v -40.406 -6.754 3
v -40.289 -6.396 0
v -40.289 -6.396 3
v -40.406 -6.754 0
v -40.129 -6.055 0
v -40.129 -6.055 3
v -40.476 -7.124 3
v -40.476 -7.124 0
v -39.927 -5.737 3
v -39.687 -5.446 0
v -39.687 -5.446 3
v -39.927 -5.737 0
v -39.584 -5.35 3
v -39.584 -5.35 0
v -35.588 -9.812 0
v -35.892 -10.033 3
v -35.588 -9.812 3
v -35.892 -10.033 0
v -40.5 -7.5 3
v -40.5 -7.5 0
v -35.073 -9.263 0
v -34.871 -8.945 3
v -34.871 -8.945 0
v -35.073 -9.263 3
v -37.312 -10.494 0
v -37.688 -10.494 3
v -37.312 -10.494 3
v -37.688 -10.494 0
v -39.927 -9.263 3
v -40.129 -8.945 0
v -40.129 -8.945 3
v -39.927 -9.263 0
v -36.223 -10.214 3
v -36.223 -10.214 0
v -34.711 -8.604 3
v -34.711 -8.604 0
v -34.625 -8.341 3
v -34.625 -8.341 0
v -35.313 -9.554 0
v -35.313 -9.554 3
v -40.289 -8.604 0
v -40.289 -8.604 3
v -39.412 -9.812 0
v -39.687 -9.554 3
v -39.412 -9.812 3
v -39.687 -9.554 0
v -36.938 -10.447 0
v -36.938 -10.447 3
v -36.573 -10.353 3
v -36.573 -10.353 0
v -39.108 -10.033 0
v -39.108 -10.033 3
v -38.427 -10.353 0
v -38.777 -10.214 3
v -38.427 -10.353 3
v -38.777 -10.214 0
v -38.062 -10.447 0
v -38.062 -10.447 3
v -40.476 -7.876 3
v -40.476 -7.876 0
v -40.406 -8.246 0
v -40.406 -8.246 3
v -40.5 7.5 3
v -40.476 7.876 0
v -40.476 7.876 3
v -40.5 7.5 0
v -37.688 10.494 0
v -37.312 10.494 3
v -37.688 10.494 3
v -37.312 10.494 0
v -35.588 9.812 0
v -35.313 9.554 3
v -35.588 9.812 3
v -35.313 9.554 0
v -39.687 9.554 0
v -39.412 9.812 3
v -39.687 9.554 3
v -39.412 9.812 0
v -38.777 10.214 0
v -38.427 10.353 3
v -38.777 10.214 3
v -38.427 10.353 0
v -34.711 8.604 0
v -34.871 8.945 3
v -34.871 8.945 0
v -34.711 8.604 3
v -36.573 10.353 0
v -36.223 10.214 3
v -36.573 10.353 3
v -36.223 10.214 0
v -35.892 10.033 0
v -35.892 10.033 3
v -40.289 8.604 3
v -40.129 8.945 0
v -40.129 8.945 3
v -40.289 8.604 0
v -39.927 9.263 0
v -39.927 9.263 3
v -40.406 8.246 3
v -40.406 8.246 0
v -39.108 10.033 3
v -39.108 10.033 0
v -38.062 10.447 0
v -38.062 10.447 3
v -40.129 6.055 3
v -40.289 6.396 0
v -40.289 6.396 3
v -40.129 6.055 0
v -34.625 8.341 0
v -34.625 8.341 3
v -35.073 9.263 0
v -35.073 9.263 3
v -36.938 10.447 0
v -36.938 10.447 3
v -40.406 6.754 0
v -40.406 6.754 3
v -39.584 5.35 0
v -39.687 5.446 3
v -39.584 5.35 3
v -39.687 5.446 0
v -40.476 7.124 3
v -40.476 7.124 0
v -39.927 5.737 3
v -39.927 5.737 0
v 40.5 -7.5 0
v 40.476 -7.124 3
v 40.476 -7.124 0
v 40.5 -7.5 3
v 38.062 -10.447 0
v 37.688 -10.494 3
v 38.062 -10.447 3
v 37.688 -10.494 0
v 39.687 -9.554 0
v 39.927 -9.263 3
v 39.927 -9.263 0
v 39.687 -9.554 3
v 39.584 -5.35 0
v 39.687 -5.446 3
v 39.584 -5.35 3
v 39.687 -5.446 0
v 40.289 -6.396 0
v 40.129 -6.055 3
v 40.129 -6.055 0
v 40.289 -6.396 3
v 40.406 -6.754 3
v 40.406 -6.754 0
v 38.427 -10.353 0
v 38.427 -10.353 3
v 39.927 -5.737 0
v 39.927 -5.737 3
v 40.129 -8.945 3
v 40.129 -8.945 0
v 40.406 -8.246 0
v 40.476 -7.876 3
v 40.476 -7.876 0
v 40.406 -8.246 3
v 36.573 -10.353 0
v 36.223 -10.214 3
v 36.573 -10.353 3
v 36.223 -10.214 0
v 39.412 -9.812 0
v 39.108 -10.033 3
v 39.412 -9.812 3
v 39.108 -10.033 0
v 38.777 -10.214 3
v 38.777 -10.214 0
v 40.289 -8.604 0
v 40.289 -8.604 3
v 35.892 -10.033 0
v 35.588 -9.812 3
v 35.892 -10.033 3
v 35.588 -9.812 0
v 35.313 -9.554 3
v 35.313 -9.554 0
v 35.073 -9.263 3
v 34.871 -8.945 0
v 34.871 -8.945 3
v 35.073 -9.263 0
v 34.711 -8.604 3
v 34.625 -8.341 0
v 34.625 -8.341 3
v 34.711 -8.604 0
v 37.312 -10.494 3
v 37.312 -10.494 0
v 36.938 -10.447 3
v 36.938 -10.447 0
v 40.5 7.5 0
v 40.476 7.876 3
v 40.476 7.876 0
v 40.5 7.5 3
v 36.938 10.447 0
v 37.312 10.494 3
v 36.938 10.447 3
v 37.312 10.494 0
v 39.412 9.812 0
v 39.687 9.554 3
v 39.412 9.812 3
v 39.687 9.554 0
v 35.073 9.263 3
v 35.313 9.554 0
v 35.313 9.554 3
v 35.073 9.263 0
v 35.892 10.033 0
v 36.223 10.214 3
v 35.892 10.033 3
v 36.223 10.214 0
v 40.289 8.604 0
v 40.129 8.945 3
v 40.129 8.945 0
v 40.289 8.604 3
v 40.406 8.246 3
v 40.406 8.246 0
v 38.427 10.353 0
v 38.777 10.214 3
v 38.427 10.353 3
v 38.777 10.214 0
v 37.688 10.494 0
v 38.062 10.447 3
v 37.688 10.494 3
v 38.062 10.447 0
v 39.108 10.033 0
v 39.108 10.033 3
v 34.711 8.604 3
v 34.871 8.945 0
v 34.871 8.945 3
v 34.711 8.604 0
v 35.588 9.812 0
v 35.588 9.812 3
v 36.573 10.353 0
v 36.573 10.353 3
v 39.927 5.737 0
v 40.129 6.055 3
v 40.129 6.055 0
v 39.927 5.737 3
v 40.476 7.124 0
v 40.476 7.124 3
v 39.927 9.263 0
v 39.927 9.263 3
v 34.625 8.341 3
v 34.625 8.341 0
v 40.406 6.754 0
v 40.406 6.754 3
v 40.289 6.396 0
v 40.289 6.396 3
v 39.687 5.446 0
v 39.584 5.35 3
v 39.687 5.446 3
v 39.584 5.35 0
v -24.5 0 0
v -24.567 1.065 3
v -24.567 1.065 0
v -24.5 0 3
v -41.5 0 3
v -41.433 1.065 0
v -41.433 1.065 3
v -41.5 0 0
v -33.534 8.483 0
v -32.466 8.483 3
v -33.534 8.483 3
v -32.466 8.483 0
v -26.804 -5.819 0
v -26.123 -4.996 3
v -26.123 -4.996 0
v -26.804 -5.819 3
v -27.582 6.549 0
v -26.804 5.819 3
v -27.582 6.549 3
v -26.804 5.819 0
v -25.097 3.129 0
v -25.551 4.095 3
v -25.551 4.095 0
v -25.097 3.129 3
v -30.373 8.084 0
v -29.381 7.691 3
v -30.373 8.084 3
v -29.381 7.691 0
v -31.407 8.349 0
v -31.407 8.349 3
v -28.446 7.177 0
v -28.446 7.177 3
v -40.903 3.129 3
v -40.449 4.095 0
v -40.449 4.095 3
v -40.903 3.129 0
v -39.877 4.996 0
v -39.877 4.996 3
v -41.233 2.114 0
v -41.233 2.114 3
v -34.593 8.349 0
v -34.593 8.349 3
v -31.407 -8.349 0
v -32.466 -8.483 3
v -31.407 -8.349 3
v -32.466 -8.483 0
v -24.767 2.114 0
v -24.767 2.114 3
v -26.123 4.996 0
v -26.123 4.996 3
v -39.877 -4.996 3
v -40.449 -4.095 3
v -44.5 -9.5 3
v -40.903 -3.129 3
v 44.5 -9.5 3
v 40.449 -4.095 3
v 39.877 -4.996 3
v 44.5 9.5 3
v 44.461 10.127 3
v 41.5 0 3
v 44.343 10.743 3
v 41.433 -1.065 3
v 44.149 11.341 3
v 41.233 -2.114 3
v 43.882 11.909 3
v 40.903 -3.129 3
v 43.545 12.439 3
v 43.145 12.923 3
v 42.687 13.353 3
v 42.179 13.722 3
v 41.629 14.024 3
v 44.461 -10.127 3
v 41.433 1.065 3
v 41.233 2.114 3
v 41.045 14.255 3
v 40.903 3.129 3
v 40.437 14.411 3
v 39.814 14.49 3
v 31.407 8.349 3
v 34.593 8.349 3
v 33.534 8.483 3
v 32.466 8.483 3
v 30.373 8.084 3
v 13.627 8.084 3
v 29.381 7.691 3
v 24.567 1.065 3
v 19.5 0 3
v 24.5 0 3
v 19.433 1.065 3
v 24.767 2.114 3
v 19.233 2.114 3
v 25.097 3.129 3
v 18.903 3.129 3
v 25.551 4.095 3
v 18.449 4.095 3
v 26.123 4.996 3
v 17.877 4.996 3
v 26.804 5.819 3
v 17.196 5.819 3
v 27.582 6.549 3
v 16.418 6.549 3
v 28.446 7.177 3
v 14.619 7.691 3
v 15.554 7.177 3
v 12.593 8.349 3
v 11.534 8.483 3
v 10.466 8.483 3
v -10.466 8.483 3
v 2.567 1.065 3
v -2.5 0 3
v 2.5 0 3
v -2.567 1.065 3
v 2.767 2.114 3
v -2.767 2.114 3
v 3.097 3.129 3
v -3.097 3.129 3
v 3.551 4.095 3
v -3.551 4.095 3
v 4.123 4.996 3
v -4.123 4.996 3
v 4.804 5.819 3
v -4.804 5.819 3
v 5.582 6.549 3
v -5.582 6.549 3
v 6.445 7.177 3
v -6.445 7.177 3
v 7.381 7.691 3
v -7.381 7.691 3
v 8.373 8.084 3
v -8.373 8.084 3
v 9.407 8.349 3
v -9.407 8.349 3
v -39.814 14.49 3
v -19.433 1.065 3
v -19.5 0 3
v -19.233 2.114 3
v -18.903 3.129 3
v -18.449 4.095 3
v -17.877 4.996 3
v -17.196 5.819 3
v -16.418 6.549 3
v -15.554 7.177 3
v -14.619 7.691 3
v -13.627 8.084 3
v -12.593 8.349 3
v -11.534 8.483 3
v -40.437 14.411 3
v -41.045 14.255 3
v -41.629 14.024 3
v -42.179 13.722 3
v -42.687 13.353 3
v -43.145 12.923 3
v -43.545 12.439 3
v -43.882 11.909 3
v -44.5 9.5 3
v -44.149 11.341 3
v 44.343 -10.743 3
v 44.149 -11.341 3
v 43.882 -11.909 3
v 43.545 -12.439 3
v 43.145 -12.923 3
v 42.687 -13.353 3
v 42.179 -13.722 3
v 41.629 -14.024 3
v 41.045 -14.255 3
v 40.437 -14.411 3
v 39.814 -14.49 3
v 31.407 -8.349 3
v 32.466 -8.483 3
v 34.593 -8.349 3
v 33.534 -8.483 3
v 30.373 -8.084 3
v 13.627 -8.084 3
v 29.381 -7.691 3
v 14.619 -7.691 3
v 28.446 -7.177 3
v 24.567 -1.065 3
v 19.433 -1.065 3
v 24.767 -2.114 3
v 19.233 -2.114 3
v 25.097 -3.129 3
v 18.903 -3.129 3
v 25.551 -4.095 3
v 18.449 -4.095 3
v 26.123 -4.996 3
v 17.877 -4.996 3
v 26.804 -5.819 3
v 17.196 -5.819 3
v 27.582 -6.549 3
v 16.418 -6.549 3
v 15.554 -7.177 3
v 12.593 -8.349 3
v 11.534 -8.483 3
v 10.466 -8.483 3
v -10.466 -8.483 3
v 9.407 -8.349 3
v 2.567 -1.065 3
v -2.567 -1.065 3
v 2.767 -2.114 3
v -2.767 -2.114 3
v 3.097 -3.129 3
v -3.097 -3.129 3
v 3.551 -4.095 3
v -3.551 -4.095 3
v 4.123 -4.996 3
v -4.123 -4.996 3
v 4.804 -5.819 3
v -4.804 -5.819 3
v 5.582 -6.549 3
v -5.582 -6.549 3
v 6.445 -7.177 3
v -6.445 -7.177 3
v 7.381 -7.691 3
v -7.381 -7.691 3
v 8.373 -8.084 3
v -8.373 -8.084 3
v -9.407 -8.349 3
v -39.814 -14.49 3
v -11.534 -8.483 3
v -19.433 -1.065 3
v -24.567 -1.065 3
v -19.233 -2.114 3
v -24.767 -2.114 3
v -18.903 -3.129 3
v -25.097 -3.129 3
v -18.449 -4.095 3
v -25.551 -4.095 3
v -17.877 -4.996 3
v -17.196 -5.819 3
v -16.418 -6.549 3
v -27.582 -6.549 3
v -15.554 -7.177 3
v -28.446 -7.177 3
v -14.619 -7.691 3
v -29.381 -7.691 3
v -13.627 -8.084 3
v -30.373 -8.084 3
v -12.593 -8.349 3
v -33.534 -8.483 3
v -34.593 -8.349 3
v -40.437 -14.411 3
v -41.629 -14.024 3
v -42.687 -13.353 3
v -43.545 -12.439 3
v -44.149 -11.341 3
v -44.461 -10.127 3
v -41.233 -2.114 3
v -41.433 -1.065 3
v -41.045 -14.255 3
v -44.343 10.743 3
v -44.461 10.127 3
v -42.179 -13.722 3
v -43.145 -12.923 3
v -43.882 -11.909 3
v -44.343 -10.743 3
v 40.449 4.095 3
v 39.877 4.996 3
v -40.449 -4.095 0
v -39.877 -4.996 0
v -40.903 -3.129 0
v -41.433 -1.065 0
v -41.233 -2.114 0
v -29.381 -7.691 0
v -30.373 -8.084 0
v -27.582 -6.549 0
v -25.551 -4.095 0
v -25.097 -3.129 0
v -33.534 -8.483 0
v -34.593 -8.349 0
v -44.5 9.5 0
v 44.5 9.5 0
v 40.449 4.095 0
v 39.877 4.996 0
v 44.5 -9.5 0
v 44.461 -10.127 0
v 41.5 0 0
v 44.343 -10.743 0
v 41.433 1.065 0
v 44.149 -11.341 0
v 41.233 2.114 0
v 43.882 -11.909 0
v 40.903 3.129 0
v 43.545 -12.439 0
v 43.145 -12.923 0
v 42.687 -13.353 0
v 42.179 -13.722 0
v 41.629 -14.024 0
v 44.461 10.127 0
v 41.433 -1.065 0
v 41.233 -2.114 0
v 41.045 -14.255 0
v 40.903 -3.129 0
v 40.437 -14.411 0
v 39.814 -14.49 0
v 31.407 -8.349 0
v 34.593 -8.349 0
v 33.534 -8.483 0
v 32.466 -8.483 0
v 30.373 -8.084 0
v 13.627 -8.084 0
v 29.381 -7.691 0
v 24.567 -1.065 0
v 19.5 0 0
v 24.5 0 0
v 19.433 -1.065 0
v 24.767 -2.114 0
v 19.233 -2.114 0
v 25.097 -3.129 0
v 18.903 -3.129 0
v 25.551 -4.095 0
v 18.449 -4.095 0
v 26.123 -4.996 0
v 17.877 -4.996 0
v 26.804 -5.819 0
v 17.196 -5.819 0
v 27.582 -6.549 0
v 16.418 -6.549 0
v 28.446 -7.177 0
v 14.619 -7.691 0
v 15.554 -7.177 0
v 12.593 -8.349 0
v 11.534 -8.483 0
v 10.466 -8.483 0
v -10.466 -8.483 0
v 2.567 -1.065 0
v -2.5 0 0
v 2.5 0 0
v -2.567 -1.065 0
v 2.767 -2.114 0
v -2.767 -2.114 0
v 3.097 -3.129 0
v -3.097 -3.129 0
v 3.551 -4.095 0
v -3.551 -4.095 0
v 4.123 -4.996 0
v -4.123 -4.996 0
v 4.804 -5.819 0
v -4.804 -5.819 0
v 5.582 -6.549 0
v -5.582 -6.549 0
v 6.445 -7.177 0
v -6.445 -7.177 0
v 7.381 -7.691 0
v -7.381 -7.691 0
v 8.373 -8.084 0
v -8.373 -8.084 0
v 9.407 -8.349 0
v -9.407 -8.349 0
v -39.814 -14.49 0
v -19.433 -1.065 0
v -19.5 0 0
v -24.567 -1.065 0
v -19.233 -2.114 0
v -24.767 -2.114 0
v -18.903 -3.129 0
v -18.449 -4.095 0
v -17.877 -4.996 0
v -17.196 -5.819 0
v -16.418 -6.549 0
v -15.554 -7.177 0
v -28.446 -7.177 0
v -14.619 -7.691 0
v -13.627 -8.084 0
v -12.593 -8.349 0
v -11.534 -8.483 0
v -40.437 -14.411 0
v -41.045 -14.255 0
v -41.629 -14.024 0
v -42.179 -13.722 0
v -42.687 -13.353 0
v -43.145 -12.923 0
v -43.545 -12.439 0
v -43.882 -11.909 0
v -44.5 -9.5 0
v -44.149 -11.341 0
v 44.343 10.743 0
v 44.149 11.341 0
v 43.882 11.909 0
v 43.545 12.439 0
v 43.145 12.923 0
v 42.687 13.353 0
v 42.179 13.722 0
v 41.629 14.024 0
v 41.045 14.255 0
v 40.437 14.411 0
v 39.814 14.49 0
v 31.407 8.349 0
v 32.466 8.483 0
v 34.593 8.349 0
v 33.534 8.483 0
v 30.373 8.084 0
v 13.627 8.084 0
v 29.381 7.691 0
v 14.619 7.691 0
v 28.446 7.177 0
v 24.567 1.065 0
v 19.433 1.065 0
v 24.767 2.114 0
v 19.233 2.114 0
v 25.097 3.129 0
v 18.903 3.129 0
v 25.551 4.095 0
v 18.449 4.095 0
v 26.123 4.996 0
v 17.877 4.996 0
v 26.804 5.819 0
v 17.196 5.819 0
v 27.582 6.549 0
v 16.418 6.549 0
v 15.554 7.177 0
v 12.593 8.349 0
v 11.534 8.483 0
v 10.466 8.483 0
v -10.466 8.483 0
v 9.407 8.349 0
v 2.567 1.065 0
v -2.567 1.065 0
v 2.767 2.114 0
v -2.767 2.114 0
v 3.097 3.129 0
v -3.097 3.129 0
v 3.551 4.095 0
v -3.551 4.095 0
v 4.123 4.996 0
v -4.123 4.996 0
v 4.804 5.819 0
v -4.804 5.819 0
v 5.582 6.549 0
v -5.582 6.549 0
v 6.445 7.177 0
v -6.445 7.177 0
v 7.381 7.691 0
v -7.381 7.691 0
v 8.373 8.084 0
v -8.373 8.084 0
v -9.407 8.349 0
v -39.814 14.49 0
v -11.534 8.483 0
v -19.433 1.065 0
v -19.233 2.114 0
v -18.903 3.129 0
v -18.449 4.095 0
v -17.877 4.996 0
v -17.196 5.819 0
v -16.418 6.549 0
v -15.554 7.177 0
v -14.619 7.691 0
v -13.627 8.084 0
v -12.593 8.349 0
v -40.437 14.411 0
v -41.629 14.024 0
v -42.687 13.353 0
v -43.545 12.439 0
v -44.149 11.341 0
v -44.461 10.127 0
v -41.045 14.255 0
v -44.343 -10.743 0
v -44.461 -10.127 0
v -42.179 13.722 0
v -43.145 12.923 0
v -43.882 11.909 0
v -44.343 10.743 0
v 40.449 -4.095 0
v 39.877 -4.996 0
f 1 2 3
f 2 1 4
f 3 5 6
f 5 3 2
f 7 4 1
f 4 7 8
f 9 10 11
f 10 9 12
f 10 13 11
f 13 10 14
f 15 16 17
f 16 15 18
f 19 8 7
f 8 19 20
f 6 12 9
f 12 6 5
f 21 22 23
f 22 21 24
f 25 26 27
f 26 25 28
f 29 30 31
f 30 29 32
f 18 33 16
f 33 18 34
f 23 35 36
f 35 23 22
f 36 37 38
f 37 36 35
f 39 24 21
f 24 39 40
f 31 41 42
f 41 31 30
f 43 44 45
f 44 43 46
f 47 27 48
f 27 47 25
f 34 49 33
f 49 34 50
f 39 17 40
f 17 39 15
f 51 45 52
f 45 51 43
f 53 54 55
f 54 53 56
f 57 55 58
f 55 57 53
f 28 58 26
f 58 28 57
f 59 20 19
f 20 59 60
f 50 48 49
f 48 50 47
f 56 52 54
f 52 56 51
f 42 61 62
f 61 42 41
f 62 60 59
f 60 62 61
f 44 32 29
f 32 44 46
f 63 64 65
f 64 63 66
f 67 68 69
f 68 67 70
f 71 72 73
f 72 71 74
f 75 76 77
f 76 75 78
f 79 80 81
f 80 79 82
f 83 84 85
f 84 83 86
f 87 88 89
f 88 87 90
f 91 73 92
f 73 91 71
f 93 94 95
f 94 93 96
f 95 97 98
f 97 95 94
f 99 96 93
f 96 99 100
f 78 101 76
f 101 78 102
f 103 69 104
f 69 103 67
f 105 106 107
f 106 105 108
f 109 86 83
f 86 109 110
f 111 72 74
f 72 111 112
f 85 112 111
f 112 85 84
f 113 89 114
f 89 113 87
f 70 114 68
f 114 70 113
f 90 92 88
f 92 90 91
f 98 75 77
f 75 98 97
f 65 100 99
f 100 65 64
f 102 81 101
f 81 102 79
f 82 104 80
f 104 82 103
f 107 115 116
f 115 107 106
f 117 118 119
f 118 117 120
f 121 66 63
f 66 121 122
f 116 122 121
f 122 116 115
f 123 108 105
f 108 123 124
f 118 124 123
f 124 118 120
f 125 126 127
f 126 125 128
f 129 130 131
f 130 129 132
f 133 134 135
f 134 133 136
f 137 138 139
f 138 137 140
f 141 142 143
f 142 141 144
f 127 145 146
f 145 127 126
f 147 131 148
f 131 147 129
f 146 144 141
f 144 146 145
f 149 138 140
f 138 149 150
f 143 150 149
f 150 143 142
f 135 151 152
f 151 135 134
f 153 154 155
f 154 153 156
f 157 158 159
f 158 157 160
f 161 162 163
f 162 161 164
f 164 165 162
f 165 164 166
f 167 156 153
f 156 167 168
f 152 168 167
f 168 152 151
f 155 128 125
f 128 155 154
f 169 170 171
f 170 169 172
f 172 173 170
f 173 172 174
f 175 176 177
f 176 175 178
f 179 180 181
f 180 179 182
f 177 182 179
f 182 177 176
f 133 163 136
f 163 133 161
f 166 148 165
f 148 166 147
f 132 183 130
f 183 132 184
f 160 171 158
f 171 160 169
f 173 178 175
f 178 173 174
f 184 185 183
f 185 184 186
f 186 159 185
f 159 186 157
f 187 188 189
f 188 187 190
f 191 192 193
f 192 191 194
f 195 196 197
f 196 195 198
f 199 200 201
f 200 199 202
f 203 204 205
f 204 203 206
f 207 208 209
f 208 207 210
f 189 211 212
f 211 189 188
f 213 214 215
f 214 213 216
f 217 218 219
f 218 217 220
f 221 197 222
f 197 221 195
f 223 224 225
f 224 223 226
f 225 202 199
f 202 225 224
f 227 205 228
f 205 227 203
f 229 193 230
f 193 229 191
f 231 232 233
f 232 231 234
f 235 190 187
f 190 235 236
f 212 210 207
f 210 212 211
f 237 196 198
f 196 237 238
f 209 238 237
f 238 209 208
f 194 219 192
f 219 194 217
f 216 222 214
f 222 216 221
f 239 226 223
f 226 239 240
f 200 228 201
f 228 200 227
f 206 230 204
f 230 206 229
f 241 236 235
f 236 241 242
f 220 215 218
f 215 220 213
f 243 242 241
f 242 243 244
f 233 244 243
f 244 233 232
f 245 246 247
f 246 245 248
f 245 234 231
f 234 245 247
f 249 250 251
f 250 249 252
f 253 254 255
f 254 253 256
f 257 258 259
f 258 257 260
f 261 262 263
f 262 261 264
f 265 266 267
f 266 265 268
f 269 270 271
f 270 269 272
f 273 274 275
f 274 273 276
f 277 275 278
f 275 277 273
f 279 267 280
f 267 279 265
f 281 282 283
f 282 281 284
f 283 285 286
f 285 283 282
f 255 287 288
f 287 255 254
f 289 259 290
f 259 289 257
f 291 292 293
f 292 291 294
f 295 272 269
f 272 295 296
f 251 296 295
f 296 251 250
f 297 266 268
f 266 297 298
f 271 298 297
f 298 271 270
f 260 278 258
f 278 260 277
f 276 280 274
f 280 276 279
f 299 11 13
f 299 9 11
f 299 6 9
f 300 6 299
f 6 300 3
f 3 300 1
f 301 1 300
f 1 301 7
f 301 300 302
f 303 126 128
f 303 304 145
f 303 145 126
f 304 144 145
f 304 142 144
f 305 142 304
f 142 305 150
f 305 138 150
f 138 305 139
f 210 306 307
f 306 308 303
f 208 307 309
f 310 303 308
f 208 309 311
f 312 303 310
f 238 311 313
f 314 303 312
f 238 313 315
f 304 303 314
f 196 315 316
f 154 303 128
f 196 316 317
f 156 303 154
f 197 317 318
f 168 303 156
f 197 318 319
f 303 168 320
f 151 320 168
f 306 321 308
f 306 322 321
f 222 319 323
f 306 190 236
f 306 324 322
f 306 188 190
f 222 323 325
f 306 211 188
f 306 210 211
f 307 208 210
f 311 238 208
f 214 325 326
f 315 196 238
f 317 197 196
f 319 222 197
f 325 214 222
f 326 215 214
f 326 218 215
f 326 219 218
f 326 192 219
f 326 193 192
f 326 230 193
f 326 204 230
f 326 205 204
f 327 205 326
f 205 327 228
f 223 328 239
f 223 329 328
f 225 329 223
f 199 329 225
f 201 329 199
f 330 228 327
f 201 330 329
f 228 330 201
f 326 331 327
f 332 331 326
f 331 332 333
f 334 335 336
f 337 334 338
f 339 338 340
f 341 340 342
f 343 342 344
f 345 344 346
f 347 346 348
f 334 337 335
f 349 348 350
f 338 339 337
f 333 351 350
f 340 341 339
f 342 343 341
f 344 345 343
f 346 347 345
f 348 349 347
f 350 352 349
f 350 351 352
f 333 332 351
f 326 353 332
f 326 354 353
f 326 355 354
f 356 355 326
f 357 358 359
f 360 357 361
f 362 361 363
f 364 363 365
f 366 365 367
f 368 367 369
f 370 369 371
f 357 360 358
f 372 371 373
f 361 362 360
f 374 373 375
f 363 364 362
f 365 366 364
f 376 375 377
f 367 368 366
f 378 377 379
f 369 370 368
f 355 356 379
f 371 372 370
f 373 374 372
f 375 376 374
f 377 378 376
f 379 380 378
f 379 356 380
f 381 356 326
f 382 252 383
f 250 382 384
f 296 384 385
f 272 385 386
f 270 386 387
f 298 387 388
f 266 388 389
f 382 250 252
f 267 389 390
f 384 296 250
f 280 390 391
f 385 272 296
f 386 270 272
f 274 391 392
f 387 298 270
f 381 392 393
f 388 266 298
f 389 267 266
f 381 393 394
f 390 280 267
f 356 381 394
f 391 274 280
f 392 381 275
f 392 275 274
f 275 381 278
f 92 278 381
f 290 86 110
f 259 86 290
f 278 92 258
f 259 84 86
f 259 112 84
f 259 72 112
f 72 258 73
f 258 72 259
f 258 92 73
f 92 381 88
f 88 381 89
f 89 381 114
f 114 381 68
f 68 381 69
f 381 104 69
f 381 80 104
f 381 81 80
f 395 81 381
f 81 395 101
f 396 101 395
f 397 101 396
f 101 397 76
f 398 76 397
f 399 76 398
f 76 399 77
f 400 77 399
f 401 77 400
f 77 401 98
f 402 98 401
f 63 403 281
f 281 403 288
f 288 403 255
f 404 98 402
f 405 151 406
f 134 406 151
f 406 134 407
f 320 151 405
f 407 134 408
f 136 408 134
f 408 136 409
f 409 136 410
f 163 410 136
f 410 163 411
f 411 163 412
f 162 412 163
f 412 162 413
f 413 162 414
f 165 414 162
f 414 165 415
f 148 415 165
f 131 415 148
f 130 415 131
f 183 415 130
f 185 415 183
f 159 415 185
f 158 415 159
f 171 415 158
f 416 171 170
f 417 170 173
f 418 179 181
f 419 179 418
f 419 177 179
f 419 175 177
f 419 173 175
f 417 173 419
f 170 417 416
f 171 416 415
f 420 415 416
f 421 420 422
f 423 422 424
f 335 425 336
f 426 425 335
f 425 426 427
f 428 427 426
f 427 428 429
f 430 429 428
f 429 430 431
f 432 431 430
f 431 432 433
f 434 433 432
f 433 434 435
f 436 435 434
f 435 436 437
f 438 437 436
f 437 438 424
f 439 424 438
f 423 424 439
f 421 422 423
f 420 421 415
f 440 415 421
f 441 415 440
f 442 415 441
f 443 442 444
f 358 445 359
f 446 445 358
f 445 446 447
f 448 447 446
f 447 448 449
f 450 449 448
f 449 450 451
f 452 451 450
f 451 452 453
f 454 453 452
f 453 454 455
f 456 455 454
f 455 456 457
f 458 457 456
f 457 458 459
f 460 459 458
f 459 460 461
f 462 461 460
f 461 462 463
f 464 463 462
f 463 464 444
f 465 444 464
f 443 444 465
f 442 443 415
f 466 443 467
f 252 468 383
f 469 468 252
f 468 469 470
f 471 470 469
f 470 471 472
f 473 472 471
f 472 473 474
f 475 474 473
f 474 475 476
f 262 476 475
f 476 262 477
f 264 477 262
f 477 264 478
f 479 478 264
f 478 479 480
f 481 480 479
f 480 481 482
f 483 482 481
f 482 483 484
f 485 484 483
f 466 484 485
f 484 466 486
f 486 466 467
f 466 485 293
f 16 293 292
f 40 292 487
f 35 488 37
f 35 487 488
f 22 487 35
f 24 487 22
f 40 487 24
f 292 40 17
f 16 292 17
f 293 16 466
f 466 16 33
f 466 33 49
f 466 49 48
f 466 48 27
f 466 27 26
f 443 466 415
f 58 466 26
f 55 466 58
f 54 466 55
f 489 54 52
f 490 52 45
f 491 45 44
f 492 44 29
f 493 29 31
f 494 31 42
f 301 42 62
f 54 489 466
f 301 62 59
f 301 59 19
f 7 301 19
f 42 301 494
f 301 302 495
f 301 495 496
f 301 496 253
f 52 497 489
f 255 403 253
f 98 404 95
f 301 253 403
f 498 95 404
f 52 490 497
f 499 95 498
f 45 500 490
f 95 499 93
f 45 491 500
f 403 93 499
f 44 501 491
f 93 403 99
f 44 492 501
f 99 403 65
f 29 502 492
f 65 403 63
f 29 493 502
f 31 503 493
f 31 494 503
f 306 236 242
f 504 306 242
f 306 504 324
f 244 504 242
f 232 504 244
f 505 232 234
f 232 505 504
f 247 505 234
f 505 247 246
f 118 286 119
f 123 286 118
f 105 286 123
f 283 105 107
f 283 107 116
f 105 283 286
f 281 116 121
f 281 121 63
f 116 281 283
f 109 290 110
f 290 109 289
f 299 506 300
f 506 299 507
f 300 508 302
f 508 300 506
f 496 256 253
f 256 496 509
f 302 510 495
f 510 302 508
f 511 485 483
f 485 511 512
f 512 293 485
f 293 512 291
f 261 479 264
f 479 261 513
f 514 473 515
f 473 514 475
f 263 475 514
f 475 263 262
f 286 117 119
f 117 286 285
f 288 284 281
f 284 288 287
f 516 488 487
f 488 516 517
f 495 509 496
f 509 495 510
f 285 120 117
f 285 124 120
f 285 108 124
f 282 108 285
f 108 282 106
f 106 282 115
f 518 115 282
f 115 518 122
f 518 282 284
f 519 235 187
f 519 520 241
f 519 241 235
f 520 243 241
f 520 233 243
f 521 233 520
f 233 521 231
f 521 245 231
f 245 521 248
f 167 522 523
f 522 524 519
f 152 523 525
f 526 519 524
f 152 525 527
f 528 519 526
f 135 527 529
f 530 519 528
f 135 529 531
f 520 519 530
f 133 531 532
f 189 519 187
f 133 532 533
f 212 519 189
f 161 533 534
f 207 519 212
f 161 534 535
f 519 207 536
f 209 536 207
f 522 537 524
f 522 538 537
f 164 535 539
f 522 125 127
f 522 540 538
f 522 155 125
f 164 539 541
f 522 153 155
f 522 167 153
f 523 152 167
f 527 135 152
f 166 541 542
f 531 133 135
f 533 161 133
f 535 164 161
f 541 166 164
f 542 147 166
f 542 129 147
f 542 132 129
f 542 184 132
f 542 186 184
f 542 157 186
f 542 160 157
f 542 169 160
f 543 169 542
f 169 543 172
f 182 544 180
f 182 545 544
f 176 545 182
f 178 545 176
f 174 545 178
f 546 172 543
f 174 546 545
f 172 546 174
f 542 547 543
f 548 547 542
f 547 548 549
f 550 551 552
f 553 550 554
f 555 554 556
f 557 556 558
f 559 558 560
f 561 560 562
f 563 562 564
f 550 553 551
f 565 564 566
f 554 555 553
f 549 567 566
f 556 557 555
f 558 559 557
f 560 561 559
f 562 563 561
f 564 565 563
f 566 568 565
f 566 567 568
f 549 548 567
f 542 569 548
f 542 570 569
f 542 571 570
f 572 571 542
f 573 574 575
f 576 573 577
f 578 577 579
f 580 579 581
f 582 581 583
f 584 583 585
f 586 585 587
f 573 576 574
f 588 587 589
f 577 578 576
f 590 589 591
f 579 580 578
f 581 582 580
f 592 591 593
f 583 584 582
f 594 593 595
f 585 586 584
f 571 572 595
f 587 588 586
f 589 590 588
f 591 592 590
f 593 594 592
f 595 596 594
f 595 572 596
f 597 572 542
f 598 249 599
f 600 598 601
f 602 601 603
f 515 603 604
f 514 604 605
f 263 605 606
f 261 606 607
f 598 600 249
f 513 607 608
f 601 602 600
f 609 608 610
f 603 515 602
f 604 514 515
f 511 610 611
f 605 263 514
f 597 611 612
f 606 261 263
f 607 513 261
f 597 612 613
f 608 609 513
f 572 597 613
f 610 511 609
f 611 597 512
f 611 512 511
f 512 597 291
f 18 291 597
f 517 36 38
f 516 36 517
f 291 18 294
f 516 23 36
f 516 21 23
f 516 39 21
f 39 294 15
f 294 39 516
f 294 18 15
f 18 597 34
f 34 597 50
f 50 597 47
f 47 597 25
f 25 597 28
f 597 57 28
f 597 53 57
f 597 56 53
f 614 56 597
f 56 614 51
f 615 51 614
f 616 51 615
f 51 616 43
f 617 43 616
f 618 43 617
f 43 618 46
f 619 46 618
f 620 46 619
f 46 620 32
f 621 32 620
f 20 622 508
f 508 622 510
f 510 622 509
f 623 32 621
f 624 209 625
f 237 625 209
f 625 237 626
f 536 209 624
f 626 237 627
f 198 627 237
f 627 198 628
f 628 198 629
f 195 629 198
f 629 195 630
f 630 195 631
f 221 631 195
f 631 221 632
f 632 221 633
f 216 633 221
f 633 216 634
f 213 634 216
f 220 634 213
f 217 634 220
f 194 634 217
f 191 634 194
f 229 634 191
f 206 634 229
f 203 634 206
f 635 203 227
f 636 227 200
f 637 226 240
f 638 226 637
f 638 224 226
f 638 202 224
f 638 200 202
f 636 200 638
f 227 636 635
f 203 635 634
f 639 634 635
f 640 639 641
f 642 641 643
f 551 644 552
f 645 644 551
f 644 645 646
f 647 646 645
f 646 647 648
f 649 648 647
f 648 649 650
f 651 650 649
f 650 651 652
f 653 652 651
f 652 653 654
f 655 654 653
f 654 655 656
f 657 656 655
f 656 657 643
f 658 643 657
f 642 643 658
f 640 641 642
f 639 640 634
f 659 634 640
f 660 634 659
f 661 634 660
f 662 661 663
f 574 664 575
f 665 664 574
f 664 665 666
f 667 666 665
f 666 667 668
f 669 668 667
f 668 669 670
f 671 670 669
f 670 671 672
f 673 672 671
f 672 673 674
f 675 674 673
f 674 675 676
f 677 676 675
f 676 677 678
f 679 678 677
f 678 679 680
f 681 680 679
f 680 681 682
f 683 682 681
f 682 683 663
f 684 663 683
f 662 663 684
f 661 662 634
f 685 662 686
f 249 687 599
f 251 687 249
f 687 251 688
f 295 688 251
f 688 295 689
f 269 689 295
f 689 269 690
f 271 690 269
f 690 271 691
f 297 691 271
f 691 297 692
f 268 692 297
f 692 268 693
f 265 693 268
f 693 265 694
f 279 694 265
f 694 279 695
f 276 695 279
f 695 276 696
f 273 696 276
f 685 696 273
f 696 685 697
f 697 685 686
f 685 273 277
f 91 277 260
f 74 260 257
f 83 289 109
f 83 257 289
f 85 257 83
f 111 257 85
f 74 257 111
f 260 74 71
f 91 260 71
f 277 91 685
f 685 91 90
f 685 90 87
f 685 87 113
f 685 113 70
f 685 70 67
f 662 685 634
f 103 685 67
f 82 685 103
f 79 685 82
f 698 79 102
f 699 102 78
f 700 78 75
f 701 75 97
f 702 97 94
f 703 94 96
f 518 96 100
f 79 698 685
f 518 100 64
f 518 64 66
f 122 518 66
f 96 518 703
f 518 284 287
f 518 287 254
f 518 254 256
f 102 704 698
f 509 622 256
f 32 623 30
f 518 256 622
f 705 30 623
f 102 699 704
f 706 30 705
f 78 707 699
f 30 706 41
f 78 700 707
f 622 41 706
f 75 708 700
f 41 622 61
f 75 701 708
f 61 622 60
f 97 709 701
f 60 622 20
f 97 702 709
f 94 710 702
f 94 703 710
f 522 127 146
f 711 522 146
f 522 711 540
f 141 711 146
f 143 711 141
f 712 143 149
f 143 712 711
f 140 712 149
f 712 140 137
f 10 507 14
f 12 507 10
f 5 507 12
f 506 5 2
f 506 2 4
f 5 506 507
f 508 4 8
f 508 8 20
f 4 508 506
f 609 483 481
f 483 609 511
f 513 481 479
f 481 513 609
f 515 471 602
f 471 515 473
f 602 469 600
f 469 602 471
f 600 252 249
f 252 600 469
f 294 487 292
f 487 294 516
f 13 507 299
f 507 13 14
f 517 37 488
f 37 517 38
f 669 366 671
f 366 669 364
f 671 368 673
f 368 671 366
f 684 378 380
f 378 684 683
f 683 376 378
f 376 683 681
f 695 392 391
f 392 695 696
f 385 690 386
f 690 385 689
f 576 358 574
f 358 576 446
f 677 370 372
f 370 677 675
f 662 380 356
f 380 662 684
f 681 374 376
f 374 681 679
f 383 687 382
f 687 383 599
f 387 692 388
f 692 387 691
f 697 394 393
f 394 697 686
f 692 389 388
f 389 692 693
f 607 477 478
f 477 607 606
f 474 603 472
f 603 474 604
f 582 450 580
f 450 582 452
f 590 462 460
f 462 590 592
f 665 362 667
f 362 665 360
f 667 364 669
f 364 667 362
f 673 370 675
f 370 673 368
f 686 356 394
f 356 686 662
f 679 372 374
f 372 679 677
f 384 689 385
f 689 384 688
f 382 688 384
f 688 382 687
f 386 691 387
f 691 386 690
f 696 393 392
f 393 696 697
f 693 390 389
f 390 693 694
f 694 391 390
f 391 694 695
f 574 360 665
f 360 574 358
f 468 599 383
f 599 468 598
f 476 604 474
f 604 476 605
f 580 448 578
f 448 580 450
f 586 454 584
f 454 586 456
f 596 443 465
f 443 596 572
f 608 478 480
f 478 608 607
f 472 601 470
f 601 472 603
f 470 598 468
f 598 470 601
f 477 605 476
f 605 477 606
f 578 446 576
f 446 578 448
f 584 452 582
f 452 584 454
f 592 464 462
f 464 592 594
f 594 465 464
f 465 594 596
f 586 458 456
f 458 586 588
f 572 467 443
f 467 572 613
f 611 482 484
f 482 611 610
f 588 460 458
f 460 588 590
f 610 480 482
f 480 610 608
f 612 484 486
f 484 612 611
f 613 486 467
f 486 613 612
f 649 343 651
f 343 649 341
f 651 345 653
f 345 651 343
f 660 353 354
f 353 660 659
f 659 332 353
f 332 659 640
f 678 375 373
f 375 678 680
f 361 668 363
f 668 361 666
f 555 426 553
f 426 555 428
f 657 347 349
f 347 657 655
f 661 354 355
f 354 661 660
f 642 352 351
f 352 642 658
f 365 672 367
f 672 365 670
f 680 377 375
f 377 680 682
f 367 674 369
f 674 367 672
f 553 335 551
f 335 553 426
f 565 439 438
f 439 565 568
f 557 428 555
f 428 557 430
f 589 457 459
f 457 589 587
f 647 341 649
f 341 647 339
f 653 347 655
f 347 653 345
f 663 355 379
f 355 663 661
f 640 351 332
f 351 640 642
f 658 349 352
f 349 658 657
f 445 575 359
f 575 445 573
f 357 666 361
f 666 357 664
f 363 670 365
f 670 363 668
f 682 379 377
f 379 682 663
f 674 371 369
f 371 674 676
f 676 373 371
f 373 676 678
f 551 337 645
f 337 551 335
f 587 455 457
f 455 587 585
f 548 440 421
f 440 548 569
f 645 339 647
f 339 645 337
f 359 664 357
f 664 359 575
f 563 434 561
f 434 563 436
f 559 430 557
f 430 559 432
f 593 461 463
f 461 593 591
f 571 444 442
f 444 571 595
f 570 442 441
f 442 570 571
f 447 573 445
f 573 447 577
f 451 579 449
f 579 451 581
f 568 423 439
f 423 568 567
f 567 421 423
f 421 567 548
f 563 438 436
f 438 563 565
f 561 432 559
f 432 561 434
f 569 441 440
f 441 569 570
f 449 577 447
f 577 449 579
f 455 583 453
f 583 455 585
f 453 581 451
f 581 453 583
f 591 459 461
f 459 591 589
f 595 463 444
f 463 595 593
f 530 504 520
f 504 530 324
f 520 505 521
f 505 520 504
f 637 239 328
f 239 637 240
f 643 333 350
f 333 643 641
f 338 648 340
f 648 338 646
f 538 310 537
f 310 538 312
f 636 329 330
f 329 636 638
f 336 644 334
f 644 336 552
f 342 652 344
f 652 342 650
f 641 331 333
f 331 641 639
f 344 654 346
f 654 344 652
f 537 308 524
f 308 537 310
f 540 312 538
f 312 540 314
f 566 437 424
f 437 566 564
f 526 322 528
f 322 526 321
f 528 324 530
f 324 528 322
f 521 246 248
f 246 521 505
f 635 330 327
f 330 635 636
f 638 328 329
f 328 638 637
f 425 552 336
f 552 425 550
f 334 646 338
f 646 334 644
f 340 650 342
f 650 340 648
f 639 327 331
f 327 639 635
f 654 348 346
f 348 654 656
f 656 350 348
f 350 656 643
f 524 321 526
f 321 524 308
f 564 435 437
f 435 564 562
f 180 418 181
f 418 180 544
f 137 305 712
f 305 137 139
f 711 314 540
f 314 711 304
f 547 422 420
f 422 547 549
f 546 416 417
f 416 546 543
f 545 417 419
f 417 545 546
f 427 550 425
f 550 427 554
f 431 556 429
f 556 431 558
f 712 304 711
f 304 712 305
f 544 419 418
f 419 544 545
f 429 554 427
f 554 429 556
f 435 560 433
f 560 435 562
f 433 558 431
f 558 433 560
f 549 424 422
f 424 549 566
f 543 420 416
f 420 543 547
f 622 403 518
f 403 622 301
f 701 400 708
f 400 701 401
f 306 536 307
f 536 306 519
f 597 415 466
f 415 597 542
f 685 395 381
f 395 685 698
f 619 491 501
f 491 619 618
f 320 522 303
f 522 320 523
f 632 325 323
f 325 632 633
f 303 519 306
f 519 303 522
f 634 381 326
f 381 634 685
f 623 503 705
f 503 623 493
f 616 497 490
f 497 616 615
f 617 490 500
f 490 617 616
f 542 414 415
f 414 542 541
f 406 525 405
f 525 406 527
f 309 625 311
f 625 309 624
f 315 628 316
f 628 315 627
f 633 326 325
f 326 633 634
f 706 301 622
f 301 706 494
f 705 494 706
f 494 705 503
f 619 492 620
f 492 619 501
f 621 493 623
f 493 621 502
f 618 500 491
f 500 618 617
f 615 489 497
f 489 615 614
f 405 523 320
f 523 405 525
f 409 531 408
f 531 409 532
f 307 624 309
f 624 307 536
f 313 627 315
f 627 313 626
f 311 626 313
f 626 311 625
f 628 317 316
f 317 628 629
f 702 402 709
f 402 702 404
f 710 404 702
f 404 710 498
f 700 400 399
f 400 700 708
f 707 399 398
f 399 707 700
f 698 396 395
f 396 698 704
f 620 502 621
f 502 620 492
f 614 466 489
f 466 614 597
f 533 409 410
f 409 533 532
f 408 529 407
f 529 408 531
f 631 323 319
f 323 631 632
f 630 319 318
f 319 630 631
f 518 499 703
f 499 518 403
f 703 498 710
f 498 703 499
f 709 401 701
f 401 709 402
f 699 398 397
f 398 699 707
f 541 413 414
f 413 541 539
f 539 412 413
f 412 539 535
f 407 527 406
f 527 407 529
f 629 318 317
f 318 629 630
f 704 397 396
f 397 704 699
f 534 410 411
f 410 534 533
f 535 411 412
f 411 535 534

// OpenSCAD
$fn = 50;


difference() {
	union() {
		hull() {
			translate(v = [-39.5000000000, 9.5000000000, 0]) {
				cylinder(h = 3, r = 5);
			}
			translate(v = [39.5000000000, 9.5000000000, 0]) {
				cylinder(h = 3, r = 5);
			}
			translate(v = [-39.5000000000, -9.5000000000, 0]) {
				cylinder(h = 3, r = 5);
			}
			translate(v = [39.5000000000, -9.5000000000, 0]) {
				cylinder(h = 3, r = 5);
			}
		}
	}
	union() {
		#translate(v = [-37.5000000000, -7.5000000000, -100.0000000000]) {
			cylinder(h = 200, r = 3.0000000000);
		}
		#translate(v = [-37.5000000000, 7.5000000000, -100.0000000000]) {
			cylinder(h = 200, r = 3.0000000000);
		}
		#translate(v = [37.5000000000, -7.5000000000, -100.0000000000]) {
			cylinder(h = 200, r = 3.0000000000);
		}
		#translate(v = [37.5000000000, 7.5000000000, -100.0000000000]) {
			cylinder(h = 200, r = 3.0000000000);
		}
		#translate(v = [-33.0000000000, 0, 0]) {
			cylinder(h = 3, r = 8.5000000000);
		}
		#translate(v = [-11.0000000000, 0, 0]) {
			cylinder(h = 3, r = 8.5000000000);
		}
		#translate(v = [11.0000000000, 0, 0]) {
			cylinder(h = 3, r = 8.5000000000);
		}
		#translate(v = [33.0000000000, 0, 0]) {
			cylinder(h = 3, r = 8.5000000000);
		}
	}
}
